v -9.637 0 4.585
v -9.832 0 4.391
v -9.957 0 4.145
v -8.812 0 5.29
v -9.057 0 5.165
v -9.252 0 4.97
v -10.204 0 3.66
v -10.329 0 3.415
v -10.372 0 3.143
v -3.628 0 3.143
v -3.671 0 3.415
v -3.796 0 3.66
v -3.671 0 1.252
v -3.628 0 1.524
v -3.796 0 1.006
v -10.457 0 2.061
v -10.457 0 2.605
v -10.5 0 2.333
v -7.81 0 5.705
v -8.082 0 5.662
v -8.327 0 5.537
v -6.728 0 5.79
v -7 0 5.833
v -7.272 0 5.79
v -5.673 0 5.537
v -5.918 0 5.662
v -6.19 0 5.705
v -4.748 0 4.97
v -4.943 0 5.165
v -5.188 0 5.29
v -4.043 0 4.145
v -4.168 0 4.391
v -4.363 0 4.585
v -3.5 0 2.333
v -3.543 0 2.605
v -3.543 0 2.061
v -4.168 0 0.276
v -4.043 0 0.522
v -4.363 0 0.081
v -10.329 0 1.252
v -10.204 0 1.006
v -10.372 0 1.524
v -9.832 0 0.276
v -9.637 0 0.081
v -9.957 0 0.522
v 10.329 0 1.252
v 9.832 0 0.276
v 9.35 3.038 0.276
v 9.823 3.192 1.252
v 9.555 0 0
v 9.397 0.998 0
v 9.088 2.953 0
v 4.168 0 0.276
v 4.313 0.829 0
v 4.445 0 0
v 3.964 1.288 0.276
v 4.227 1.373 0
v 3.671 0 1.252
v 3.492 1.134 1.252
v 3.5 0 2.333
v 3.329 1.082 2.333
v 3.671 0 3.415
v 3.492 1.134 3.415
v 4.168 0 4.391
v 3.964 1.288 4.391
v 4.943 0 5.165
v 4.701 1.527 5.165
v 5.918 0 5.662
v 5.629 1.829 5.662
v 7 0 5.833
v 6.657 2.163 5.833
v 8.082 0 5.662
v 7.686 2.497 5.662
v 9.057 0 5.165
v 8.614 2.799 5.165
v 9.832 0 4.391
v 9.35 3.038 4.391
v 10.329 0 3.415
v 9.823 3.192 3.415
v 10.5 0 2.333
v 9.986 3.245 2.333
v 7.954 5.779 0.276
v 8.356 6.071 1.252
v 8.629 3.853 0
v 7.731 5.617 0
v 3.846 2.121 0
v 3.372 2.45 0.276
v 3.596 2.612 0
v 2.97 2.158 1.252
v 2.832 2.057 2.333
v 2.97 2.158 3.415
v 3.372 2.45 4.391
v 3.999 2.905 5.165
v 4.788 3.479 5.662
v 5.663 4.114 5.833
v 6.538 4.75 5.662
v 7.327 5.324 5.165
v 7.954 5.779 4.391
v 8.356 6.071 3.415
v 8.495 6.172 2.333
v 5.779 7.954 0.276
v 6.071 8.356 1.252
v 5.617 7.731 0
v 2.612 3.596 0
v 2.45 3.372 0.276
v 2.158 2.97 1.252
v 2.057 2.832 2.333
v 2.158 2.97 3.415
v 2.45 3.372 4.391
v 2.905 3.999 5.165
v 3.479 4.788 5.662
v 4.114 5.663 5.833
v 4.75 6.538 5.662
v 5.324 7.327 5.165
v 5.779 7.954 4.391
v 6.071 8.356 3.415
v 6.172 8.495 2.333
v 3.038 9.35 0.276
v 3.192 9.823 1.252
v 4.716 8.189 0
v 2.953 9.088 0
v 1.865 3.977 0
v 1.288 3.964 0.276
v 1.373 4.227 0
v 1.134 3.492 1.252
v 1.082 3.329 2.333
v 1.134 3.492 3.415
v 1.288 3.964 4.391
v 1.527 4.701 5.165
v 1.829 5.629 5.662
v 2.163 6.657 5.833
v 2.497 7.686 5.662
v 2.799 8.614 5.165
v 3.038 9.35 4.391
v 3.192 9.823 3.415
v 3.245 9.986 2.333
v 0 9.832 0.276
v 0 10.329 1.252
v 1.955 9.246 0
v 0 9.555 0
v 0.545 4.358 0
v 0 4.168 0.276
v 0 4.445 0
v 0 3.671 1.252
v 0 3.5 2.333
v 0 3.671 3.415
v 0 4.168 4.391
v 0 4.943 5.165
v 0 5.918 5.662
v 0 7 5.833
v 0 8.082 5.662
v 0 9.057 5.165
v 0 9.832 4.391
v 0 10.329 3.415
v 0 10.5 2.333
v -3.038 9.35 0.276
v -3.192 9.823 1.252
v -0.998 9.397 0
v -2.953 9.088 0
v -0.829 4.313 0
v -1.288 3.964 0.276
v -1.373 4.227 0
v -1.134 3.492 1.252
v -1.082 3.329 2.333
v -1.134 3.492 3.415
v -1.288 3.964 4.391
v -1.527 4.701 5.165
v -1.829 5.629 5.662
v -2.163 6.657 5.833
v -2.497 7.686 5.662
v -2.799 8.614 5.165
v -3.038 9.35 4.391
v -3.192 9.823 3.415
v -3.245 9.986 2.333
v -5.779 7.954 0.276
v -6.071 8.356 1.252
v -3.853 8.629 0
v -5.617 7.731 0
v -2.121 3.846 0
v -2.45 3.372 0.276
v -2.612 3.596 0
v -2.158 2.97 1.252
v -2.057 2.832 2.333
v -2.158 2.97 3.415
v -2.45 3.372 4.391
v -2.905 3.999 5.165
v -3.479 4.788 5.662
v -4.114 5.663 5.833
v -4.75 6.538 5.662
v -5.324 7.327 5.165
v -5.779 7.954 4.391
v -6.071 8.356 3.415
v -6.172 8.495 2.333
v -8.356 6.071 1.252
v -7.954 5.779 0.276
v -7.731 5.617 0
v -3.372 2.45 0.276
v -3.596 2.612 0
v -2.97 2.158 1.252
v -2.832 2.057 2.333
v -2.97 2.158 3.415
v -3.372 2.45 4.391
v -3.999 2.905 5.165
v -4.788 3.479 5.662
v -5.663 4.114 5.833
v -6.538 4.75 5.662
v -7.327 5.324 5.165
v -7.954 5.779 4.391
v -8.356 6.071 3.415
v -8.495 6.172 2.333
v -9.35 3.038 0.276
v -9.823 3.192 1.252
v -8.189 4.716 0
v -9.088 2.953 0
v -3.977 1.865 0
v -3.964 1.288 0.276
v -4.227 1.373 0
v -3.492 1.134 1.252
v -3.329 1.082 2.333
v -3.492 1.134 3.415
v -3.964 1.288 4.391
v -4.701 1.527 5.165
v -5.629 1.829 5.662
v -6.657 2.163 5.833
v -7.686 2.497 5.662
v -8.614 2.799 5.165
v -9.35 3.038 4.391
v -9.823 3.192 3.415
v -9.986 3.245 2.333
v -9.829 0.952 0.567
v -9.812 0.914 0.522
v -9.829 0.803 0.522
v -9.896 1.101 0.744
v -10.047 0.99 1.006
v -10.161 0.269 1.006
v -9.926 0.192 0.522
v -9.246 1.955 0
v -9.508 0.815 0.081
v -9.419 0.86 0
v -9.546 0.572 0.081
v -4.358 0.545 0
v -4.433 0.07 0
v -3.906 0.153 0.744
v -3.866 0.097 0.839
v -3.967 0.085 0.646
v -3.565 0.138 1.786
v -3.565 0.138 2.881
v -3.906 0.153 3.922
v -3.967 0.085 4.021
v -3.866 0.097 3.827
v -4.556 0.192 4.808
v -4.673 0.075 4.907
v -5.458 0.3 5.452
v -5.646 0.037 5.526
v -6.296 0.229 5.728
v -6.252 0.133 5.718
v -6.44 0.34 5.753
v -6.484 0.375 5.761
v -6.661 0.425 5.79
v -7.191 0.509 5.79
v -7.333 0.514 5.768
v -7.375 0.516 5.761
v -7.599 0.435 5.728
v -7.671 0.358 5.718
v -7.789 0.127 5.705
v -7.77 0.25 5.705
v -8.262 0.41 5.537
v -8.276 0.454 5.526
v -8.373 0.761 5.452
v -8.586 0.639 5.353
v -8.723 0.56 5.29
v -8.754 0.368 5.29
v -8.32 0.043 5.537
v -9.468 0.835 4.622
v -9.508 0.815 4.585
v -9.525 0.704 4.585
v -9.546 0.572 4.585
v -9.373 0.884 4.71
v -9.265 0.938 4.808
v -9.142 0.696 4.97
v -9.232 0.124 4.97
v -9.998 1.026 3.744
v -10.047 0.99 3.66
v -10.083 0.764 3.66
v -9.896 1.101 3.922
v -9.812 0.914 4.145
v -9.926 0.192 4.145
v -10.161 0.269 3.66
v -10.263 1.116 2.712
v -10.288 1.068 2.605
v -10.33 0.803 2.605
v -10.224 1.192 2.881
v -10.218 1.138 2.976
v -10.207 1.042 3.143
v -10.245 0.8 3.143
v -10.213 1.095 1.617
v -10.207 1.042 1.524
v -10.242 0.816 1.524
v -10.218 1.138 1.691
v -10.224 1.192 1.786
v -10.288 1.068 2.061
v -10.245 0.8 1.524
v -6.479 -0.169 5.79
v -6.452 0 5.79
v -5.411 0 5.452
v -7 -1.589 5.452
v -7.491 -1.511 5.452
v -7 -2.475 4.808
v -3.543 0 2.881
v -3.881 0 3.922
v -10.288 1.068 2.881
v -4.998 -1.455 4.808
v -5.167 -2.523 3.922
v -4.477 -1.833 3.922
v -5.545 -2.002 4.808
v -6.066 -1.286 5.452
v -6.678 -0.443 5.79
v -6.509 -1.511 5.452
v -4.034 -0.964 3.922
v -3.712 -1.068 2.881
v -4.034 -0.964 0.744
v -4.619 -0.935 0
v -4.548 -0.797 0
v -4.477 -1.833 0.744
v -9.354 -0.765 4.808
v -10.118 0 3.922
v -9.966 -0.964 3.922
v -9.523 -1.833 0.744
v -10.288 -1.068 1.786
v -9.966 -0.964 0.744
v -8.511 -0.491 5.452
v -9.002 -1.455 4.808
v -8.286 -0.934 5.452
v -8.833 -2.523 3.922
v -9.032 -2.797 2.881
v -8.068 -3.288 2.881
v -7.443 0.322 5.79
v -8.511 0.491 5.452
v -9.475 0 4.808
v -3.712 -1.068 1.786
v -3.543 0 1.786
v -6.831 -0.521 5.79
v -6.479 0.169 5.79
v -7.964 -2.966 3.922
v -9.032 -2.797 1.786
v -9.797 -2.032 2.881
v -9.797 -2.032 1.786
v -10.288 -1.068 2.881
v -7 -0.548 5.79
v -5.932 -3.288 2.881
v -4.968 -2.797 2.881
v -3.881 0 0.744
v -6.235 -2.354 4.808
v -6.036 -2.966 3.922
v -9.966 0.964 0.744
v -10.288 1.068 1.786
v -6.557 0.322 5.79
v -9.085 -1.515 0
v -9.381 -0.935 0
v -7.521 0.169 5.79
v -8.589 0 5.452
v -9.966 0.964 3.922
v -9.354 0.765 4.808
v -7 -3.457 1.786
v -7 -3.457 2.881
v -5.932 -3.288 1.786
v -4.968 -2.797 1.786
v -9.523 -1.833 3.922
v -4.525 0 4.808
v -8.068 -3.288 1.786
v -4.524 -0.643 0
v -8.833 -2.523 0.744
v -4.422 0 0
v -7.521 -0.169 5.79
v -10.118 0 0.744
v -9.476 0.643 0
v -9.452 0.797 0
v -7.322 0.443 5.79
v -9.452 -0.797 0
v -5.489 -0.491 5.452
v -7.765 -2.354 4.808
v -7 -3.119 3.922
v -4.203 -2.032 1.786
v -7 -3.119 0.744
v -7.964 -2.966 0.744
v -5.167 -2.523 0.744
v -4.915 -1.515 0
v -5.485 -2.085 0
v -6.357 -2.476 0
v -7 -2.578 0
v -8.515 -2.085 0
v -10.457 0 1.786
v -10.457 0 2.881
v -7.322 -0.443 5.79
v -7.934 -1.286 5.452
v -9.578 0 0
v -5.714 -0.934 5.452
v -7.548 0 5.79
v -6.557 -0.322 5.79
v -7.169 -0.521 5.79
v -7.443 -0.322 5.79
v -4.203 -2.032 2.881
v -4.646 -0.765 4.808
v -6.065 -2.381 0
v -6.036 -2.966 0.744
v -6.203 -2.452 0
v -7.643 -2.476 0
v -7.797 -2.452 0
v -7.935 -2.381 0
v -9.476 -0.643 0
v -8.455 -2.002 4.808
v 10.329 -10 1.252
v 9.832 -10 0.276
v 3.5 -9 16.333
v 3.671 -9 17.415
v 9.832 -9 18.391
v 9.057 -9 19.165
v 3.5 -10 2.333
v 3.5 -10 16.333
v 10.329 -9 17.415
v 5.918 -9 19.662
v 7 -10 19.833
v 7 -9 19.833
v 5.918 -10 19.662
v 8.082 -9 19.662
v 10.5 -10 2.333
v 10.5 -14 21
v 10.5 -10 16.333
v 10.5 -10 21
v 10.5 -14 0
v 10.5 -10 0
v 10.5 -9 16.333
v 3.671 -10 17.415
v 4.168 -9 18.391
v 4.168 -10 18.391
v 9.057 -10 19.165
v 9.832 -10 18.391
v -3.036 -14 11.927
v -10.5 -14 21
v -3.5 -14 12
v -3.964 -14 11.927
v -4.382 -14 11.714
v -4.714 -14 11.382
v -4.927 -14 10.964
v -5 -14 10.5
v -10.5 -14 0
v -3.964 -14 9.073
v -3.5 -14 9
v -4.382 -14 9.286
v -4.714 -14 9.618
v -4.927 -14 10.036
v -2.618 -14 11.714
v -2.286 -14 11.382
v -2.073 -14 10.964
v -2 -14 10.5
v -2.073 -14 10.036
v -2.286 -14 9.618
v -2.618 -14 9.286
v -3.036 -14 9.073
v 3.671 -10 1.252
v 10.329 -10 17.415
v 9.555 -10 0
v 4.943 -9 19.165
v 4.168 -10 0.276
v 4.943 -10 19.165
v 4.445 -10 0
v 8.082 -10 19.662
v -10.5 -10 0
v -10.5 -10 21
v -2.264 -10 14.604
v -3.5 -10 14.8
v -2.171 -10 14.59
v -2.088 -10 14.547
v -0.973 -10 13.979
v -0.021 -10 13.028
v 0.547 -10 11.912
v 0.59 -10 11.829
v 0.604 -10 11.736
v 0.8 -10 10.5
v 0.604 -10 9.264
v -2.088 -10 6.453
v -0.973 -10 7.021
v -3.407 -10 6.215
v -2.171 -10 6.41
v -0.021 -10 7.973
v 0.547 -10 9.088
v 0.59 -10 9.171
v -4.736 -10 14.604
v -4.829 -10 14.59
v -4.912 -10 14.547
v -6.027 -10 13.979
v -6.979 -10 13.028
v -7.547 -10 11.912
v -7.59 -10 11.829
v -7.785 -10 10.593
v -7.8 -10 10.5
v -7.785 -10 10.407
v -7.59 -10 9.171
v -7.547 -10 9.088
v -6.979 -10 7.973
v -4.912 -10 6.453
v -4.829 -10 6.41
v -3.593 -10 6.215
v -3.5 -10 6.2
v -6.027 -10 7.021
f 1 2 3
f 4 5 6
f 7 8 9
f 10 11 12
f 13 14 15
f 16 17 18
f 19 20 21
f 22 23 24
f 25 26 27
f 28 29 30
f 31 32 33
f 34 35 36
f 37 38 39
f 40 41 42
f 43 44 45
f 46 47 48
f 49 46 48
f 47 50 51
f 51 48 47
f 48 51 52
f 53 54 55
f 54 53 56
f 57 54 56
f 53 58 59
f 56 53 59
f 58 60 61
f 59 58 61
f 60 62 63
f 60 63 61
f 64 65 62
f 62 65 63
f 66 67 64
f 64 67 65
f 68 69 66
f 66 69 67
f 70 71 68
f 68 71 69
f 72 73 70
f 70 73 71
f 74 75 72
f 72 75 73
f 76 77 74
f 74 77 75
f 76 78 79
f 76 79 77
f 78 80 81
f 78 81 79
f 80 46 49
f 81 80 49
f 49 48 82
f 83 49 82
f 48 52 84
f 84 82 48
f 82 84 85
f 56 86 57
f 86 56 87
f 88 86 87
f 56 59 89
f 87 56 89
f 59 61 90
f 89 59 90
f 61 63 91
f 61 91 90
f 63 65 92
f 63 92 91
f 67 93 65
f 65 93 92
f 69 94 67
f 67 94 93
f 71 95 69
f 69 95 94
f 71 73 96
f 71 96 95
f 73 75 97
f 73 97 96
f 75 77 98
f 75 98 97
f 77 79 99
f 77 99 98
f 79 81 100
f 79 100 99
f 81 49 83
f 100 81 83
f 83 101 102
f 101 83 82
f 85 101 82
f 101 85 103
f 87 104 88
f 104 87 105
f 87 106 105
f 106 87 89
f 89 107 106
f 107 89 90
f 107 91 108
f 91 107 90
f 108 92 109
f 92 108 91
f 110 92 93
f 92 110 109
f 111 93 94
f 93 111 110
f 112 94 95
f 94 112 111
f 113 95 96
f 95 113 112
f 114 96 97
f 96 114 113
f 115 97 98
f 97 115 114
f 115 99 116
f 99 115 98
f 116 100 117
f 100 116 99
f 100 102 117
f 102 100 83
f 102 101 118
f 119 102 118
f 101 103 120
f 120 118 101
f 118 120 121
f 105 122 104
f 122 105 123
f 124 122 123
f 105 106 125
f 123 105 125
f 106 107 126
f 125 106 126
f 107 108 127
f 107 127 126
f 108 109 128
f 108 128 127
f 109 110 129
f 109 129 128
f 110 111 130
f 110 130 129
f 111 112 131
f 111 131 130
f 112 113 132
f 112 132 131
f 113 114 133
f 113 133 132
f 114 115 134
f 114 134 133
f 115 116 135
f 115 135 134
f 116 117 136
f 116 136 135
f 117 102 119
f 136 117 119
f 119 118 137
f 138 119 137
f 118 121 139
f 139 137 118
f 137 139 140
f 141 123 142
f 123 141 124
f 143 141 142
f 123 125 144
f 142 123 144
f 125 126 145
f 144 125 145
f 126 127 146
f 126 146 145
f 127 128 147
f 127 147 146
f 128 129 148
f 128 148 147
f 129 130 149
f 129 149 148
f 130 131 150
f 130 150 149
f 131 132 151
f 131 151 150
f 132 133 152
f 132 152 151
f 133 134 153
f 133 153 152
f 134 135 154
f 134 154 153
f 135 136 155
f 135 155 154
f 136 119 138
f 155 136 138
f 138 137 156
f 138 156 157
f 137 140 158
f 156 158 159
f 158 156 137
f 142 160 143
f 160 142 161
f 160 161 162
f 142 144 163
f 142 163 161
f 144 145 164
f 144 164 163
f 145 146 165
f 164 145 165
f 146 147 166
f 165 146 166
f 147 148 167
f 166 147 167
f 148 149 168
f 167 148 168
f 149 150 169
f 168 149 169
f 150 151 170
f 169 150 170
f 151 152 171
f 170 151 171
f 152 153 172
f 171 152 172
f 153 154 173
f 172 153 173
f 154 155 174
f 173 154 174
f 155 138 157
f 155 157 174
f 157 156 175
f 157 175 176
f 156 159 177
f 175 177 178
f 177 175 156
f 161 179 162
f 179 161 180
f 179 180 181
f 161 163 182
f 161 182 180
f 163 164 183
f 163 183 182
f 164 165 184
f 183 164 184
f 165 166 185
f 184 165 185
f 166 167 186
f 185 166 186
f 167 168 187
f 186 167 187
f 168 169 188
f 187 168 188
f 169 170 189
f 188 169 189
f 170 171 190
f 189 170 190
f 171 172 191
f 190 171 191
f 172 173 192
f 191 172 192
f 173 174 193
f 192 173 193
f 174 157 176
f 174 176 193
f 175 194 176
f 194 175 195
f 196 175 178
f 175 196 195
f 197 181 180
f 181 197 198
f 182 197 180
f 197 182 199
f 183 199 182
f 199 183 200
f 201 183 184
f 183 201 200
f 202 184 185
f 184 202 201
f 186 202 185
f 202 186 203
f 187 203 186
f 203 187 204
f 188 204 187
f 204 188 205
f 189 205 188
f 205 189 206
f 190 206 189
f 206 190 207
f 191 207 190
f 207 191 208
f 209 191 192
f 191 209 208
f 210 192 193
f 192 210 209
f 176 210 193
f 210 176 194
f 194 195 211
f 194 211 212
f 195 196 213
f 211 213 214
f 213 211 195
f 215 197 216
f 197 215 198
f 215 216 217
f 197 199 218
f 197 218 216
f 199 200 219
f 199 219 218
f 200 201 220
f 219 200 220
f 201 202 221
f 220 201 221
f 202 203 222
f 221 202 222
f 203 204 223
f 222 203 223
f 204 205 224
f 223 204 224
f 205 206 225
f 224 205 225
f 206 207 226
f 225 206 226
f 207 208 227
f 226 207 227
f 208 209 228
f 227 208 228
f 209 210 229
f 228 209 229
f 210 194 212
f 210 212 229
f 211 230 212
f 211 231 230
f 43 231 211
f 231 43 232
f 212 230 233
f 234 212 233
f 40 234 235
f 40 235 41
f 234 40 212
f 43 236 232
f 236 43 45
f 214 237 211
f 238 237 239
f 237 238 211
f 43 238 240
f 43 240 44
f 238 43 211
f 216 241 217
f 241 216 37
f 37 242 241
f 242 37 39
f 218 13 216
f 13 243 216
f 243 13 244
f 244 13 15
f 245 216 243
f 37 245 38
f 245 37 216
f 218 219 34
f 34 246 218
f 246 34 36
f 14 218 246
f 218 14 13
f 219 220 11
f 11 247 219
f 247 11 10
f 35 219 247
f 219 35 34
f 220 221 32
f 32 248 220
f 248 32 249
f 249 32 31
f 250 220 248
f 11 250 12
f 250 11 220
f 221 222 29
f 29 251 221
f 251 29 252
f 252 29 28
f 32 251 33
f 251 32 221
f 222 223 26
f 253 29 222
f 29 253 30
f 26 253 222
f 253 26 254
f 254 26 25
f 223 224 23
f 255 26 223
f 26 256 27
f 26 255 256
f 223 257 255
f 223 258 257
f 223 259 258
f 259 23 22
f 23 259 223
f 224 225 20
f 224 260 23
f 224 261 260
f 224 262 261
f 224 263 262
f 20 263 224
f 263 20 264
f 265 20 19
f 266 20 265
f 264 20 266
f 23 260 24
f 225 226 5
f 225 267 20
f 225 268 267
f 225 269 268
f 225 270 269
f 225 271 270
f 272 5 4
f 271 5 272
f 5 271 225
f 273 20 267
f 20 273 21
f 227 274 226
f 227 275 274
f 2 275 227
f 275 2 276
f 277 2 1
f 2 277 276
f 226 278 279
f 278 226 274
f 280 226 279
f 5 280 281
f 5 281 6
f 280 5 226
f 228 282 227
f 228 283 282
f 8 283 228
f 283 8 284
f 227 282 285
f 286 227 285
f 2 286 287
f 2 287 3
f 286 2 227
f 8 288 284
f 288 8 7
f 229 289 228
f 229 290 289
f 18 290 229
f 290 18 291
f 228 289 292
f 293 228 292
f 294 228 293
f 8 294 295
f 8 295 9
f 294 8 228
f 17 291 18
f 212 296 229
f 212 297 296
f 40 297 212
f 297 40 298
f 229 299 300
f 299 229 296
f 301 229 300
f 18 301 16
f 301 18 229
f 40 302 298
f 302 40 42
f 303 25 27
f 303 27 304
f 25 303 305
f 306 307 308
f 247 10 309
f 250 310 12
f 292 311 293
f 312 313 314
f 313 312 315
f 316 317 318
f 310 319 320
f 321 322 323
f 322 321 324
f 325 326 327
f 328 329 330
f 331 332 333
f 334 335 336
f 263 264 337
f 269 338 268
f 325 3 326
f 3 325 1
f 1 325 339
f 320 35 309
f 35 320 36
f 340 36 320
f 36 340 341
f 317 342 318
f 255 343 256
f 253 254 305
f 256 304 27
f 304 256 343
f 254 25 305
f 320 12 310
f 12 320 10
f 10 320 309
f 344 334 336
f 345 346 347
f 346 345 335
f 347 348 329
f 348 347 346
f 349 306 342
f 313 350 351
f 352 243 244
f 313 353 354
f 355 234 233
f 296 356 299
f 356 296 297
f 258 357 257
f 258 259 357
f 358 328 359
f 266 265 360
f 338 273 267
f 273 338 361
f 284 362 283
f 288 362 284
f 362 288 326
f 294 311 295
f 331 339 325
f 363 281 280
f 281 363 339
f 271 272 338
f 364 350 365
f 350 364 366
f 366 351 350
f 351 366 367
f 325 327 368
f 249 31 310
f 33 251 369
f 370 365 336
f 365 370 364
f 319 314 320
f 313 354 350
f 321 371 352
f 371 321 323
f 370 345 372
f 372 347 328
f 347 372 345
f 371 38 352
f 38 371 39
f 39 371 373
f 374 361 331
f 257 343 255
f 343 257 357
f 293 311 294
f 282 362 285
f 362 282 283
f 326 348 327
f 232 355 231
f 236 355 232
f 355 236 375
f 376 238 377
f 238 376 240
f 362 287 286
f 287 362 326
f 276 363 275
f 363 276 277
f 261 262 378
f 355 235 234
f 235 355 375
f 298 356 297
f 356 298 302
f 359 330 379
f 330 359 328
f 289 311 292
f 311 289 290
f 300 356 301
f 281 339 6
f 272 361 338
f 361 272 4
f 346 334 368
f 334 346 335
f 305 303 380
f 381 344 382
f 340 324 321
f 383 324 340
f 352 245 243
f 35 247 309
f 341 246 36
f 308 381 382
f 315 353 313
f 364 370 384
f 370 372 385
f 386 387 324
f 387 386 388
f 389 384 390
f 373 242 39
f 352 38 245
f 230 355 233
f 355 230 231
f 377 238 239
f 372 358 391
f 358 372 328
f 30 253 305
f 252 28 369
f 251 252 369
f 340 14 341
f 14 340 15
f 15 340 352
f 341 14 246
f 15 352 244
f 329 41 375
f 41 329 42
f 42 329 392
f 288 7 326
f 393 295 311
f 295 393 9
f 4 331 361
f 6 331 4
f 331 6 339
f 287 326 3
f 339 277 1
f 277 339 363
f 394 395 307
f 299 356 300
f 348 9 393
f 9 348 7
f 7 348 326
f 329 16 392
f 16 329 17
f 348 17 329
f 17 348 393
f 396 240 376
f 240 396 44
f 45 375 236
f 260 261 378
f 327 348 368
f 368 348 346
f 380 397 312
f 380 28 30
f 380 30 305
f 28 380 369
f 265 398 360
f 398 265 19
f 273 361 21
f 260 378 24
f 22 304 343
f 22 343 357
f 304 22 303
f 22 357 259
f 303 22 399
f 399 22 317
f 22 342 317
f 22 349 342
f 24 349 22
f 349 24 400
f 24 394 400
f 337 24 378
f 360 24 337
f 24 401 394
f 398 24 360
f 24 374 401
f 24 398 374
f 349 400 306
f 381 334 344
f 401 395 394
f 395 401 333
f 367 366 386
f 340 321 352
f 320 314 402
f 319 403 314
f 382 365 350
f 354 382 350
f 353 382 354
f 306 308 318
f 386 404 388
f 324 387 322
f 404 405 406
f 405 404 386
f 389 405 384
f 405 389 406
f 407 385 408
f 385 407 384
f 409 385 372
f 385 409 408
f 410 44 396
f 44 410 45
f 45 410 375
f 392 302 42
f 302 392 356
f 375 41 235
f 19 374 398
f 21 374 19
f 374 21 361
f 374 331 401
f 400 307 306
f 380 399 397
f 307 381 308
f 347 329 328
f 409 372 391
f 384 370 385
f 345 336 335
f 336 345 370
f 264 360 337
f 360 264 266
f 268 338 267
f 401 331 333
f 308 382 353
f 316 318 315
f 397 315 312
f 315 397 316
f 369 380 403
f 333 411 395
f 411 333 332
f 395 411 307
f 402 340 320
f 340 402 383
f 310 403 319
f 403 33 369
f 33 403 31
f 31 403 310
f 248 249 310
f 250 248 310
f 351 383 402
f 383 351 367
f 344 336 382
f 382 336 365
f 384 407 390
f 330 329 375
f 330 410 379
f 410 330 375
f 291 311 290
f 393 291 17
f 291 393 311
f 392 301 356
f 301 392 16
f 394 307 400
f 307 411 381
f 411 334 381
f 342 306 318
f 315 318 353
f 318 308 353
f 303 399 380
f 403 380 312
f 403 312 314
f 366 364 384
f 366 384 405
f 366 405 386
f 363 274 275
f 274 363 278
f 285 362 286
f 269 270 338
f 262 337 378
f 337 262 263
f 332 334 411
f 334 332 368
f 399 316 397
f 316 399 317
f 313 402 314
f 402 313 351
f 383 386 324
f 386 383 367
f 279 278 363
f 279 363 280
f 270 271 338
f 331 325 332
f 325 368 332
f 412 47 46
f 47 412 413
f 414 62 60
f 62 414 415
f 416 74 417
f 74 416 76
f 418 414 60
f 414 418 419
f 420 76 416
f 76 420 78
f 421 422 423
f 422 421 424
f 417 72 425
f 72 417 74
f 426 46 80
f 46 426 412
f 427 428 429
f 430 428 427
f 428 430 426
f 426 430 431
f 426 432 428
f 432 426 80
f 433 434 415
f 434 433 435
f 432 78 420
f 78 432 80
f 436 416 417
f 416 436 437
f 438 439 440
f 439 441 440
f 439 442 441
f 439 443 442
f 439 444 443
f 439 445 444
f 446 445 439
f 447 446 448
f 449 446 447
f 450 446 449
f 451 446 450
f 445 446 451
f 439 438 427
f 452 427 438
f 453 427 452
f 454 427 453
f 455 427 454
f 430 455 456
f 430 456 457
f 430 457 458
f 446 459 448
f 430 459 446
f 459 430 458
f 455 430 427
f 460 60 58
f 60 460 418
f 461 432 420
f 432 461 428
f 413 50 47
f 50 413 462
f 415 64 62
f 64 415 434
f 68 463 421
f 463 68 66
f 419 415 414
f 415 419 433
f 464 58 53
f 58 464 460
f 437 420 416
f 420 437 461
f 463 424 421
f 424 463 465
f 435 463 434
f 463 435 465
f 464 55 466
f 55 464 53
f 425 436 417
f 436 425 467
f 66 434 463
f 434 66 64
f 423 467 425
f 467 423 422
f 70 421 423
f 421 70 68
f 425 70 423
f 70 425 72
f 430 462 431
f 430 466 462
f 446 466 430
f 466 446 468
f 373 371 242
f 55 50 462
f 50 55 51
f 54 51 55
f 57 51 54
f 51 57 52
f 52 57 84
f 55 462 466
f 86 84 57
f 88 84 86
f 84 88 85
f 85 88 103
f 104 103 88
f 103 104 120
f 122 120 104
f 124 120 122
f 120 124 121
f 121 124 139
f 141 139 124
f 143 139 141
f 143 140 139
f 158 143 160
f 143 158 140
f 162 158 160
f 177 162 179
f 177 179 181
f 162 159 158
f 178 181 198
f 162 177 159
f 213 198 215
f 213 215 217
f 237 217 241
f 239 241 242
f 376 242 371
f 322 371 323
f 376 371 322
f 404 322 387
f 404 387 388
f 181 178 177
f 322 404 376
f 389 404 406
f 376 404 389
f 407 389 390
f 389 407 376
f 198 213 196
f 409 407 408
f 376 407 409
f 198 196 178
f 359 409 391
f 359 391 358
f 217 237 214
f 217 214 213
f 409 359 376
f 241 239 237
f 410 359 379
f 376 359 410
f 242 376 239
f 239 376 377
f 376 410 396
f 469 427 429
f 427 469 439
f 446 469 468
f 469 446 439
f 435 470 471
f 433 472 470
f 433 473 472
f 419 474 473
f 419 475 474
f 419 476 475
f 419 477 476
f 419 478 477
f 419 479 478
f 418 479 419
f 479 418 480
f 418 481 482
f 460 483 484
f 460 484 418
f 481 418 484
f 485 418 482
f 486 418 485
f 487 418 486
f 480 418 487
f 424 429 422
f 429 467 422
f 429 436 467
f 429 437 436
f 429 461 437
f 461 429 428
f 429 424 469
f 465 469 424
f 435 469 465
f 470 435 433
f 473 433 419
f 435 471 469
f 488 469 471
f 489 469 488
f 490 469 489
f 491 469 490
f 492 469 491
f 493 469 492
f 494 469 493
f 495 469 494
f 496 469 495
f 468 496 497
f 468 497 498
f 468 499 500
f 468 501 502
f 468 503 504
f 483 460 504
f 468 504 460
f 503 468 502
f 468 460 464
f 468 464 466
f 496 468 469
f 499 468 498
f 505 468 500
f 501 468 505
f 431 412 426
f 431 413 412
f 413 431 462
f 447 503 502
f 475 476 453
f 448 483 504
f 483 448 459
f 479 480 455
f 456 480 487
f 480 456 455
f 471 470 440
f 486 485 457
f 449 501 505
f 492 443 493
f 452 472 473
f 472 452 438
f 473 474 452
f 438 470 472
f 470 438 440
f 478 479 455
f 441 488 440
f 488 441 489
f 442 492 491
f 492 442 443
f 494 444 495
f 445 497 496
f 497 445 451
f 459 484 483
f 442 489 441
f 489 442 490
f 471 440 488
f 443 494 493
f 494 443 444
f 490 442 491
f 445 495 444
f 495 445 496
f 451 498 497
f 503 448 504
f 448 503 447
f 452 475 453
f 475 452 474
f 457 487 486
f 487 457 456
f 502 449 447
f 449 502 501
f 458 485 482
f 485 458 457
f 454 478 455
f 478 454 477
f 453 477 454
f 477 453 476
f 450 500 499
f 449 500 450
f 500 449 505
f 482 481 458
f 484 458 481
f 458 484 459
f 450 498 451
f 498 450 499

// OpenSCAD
// file: mjk.scad
module tx(x) { translate([x,0,0]) children(); }
module ty(y) { translate([0,y,0]) children(); }
module tz(z) { translate([0,0,z]) children(); }
module rotx(a=90) { rotate([a,0,0]) children(); }
module roty(a=90) { rotate([0,a,0]) children(); }
module rotz(a=90) { rotate([0,0,a]) children(); }
module mx() { mirror([1,0,0]) children(); }
module my() { mirror([0,1,0]) children(); }
module mz() { mirror([0,0,1]) children(); }
module cmx() { children(); mirror([1,0,0]) children(); }
module cmy() { children(); mirror([0,1,0]) children(); }
module cmz() { children(); mirror([0,0,1]) children(); }

module prism(dim)
{
  translate([0,dim.y,0])
  rotate([90,0,0])
  linear_extrude(dim.y) 
  polygon([[0, 0], [dim.x, 0], [0, dim.z]]);
}

module parallelogram(dim, shift_x)
{
  assert(shift_x < dim.x);
  translate([0,dim.y,0])
  rotate([90,0,0])
  linear_extrude(dim.y) 
  polygon([[0, 0], [dim.x-shift_x, 0], [dim.x, dim.z], [shift_x, dim.z]]);  
}

module tower(h, d)
{
  eps = 1.001;
  for (i=[1:len(h)-1])
    tz(h[i-1]) cylinder(h=eps*(h[i]-h[i-1]), d1=d[i-1], d2=d[i]);
}

module cubec(dim, chamfer=[0,0,0], center)
{
    tr = center ? [0,0,0] : [dim[0]/2, dim[1]/2, dim[2]/2];
    
    inn=dim- 2 * chamfer;
    assert(inn[0] > 0);
    assert(inn[1] > 0);
    assert(inn[2] > 0);
    translate(tr) 
    union()
    {
    hull()
        {
            cube([inn[0], inn[1], dim[2]], center=true);
            cube([inn[0], dim[1], inn[2]], center=true);
            cube([dim[0], inn[1], inn[2]], center=true);
        }
    }
}


module cubech2(dim, ch1=0, ch2=0, center=false)
{
    tr = center ? [0,0,0] : [dim[0]/2, dim[1]/2, dim[2]/2];
    
    inn=dim- 2 * [ch1, ch1, ch2];
    inn2=dim- 2 * [ch2, ch2, ch2];
    assert(inn[0] > 0);
    assert(inn[1] > 0);
    assert(inn[2] > 0);
    translate(tr) 
    union()
    {
    hull()
        {
            //cube([inn2[0], inn[1], dim[2]], center=true);
            cube([inn2[0], inn2[1], dim[2]], center=true);
            cube([inn[0], dim[1], inn[2]], center=true);
            cube([dim[0], inn[1], inn[2]], center=true);
        }
    }
}
module cubech(dim, edge=0, top=0, bottom=0, center=false)
{
    tr = center ? [0,0,0] : dim/2;
    
    inn=dim- [2*edge, 2*edge, top+bottom];
    //assert(inn[0] > 0);
    //assert(inn[1] > 0);
    //assert(inn[2] > 0);
    translate(tr) 
    union()
    {
    hull()
        {
            tz((bottom-top)/2) cube([dim.x, inn.y, inn.z], center=true);
            tz((bottom-top)/2) cube([inn.x, dim.y, inn.z], center=true);
            tz(bottom/2) cube([dim.x-2*top, dim.y-2*edge, dim.z-bottom], center=true);
            tz(bottom/2) cube([dim.x-2*edge, dim.y-2*top, dim.z-bottom], center=true);
            tz(-bottom/2) cube([dim.x-2*bottom, dim.y-2*edge, dim.z-top], center=true);
            tz(-bottom/2) cube([dim.x-2*edge, dim.y-2*bottom, dim.z-top], center=true);
        }
    }
}

//cubech2([20, 30, 10], 0, 1);

module cube_fillet(dim, fil=[0,0,0], center)
{
  cubec(dim, fil, center);
}


module cube_round(dim, r, center=false)
{
  tr = center ? [0,0,0] : [dim[0]/2, dim[1]/2, dim[2]/2];  
  inn = dim - [2 * r, 2*r, 0];
  assert(inn[0] > 0);
  assert(inn[1] > 0);
  assert(inn[2] > 0);
  translate(tr) 
  union()
  {
    cube([inn[0], dim[1], dim[2]], center=true);
    cube([dim[0], inn[1], dim[2]], center=true);
    for(x=[-1,1]) 
      for(y=[-1,1])
        translate([x*(dim.x/2-r), y*(dim.y/2-r),0])
          cylinder(dim[2], r, r, center=true);     
  }
}

module cube_round3(dim, r, center=false)
{
  tr = center ? [0,0,0] : [dim[0]/2, dim[1]/2, dim[2]/2];  
  inn = dim - 2 * r * [1,1,1];
  assert(inn[0] > 0);
  assert(inn[1] > 0);
  assert(inn[2] > 0);
  translate(tr) 
  hull()
  {
    cube([inn[0], inn[1], dim[2]], center=true);
    cube([inn[0], dim[1], inn[2]], center=true);
    cube([dim[0], inn[1], inn[2]], center=true);
    for(x=[-1,1]) 
      for(y=[-1,1])
        for(z=[-1,1])
          translate([x*(dim.x/2-r), y*(dim.y/2-r),z*(dim.z/2-r)])
            sphere(r);     
  }
}

module hull_tower()
{
  for(i=[1:$children-1])
  {
    hull()
    {
      children(i-1);
      children(i);
    }
  }
}


module hull_loop()
{
  for(i=[1:$children-1])
  {
    hull()
    {
      children(0);
      children(i);
    }
  }
}


module gewinde(h, d, s, slices=500, scale=1)
{
  turns = h / s;
  
  linear_extrude(height=h, center=false, twist=-turns * 360, slices=slices, scale=scale)
  translate([s/4,0,0]) circle(d/2-s/4);
}


module hex(h, w)
{
  translate([0,0,h/2])
  union()
    for (a=[0, 60, 120])
      rotate(a, [0,0,1])  
        cube([w, w*tan(30), h], center=true);
}

module ring_segment(h, r1, r2, a_start, a_stop, $fn=30)
{
  step = (a_stop-a_start-0.01) / $fn;
  l1 = [for (w =[a_start:step:a_stop]) [r1*sin(w), r1*cos(w)]];
  l2 = [for (w =[a_stop:-step:a_start]) [r2*sin(w), r2*cos(w)]];
  l = concat(l1, l2);
  linear_extrude(h, convexity=5)
  {
      polygon(l);
  }
}


module Schraube(m=4, h=30, mutter=5, kopf=5)
{
    //      0  1    2  3    4  5  6   7   8   9   10  11  12
    maul = [0, 2.5, 4, 5.5, 7, 8, 10, 11, 13, 15, 17, 18, 19];
    d_mutter = maul[m];
    r_loch = m  * 0.53;
    r_kopf = maul[m] * 0.54;
    union() 
    {
        translate([0, 0, h- mutter/2]) hex(2*mutter, d_mutter);
        cylinder(h, r_loch, r_loch);
        translate([0, 0, 0]) cylinder(kopf, r_kopf, r_kopf);
    }
}

//ty(20) WSL10();
//WSG10();

module WSG10(add=0, snap=0.6)
{
  color("darkgrey") tz(-9-add) difference()
  {
    tz(4.5+add/2) cube([20.4, 9., 9]+add*[1,1,1], true);
    cmx() tx(17.8/2+1) cube([2, 3.5, 6.4*2]+add*[1,1,1], true);
  }
  color("darkgreen") hull()
  {
    cube([20.4-2*snap+add, 9+add, 0.5], true);
    tz(3) cube([20.4+1+add, 9+add, 0.5], true);
  }
  color("gold") tz(-10) cube([12., 4.5, 4], true);
}

module WSL10(add=0, snap=0.6)
{
  color("lightgrey") tz(-14-add) difference()
  {
    tz(7+add/2) cube([21.4, 8.6, 14]+add*[1,1,1], true);
    ty(-4) cube([13, 2, 5.5]+add*[1,1,1], true);
  }
  color("darkgreen") hull()
  {
    cube([21.4-2*snap+add, 8.6+add, 0.5], true);
    tz(3) cube([21.4+1+add, 8.6+add, 0.5], true);
  }
}


module Getriebemotor()
{
  rotx(-90)
  {
    tx(64/2-11)cube_round([65, 23, 19], 3.5, center=true);
    color("white") cylinder(h=36.5, d=6.5, center=true);
    tx(11) cylinder(19/2+2, 2, 2);
    tx(30) ty(-3) cube([5, 6, 19/2+2]);
    tx(30) ty(-7) tz(-3-19/2) cube([23, 14, 5]);
    tz(-1) cube([32, 5.5, 3], true);
    
    tx(19.8) ty(+17.5/2) tz(-16) Schraube(m=3, h=32, mutter=5, kopf=3);
    tx(19.8) ty(-17.5/2) tz(-16) Schraube(m=3, h=32, mutter=5, kopf=3);
    //tx(60) ty(+11) tz(-16) Schraube(m=3, h=32, mutter=16, kopf=8);
    //tx(60) ty(-10) tz(-16) Schraube(m=3, h=32, mutter=16, kopf=8);  
  }
}
// main file
include <mjk.scad>

$fn=20;
d = 7;
r = 7;


difference() 
{
  tz(d/3) union() {
    rotate_extrude(angle=180) tx(r) circle(d=d);
    tx(-r) sphere(d=d);
    tx(r) rotx() hull() { cylinder(d=d, h=2*d); tz(9) ty(2*d) cylinder(d=d, h=1); }
  }
  tz(-20) cube(40, true);
}
x = 2*d+r;
tx(-x/2) ty(-2*d) difference() 
{ 
  cube([x, 4, x]);
  tx(x/3) tz(x/2) rotx(-90) cylinder(d1=3, d2=10, h=5);
}
